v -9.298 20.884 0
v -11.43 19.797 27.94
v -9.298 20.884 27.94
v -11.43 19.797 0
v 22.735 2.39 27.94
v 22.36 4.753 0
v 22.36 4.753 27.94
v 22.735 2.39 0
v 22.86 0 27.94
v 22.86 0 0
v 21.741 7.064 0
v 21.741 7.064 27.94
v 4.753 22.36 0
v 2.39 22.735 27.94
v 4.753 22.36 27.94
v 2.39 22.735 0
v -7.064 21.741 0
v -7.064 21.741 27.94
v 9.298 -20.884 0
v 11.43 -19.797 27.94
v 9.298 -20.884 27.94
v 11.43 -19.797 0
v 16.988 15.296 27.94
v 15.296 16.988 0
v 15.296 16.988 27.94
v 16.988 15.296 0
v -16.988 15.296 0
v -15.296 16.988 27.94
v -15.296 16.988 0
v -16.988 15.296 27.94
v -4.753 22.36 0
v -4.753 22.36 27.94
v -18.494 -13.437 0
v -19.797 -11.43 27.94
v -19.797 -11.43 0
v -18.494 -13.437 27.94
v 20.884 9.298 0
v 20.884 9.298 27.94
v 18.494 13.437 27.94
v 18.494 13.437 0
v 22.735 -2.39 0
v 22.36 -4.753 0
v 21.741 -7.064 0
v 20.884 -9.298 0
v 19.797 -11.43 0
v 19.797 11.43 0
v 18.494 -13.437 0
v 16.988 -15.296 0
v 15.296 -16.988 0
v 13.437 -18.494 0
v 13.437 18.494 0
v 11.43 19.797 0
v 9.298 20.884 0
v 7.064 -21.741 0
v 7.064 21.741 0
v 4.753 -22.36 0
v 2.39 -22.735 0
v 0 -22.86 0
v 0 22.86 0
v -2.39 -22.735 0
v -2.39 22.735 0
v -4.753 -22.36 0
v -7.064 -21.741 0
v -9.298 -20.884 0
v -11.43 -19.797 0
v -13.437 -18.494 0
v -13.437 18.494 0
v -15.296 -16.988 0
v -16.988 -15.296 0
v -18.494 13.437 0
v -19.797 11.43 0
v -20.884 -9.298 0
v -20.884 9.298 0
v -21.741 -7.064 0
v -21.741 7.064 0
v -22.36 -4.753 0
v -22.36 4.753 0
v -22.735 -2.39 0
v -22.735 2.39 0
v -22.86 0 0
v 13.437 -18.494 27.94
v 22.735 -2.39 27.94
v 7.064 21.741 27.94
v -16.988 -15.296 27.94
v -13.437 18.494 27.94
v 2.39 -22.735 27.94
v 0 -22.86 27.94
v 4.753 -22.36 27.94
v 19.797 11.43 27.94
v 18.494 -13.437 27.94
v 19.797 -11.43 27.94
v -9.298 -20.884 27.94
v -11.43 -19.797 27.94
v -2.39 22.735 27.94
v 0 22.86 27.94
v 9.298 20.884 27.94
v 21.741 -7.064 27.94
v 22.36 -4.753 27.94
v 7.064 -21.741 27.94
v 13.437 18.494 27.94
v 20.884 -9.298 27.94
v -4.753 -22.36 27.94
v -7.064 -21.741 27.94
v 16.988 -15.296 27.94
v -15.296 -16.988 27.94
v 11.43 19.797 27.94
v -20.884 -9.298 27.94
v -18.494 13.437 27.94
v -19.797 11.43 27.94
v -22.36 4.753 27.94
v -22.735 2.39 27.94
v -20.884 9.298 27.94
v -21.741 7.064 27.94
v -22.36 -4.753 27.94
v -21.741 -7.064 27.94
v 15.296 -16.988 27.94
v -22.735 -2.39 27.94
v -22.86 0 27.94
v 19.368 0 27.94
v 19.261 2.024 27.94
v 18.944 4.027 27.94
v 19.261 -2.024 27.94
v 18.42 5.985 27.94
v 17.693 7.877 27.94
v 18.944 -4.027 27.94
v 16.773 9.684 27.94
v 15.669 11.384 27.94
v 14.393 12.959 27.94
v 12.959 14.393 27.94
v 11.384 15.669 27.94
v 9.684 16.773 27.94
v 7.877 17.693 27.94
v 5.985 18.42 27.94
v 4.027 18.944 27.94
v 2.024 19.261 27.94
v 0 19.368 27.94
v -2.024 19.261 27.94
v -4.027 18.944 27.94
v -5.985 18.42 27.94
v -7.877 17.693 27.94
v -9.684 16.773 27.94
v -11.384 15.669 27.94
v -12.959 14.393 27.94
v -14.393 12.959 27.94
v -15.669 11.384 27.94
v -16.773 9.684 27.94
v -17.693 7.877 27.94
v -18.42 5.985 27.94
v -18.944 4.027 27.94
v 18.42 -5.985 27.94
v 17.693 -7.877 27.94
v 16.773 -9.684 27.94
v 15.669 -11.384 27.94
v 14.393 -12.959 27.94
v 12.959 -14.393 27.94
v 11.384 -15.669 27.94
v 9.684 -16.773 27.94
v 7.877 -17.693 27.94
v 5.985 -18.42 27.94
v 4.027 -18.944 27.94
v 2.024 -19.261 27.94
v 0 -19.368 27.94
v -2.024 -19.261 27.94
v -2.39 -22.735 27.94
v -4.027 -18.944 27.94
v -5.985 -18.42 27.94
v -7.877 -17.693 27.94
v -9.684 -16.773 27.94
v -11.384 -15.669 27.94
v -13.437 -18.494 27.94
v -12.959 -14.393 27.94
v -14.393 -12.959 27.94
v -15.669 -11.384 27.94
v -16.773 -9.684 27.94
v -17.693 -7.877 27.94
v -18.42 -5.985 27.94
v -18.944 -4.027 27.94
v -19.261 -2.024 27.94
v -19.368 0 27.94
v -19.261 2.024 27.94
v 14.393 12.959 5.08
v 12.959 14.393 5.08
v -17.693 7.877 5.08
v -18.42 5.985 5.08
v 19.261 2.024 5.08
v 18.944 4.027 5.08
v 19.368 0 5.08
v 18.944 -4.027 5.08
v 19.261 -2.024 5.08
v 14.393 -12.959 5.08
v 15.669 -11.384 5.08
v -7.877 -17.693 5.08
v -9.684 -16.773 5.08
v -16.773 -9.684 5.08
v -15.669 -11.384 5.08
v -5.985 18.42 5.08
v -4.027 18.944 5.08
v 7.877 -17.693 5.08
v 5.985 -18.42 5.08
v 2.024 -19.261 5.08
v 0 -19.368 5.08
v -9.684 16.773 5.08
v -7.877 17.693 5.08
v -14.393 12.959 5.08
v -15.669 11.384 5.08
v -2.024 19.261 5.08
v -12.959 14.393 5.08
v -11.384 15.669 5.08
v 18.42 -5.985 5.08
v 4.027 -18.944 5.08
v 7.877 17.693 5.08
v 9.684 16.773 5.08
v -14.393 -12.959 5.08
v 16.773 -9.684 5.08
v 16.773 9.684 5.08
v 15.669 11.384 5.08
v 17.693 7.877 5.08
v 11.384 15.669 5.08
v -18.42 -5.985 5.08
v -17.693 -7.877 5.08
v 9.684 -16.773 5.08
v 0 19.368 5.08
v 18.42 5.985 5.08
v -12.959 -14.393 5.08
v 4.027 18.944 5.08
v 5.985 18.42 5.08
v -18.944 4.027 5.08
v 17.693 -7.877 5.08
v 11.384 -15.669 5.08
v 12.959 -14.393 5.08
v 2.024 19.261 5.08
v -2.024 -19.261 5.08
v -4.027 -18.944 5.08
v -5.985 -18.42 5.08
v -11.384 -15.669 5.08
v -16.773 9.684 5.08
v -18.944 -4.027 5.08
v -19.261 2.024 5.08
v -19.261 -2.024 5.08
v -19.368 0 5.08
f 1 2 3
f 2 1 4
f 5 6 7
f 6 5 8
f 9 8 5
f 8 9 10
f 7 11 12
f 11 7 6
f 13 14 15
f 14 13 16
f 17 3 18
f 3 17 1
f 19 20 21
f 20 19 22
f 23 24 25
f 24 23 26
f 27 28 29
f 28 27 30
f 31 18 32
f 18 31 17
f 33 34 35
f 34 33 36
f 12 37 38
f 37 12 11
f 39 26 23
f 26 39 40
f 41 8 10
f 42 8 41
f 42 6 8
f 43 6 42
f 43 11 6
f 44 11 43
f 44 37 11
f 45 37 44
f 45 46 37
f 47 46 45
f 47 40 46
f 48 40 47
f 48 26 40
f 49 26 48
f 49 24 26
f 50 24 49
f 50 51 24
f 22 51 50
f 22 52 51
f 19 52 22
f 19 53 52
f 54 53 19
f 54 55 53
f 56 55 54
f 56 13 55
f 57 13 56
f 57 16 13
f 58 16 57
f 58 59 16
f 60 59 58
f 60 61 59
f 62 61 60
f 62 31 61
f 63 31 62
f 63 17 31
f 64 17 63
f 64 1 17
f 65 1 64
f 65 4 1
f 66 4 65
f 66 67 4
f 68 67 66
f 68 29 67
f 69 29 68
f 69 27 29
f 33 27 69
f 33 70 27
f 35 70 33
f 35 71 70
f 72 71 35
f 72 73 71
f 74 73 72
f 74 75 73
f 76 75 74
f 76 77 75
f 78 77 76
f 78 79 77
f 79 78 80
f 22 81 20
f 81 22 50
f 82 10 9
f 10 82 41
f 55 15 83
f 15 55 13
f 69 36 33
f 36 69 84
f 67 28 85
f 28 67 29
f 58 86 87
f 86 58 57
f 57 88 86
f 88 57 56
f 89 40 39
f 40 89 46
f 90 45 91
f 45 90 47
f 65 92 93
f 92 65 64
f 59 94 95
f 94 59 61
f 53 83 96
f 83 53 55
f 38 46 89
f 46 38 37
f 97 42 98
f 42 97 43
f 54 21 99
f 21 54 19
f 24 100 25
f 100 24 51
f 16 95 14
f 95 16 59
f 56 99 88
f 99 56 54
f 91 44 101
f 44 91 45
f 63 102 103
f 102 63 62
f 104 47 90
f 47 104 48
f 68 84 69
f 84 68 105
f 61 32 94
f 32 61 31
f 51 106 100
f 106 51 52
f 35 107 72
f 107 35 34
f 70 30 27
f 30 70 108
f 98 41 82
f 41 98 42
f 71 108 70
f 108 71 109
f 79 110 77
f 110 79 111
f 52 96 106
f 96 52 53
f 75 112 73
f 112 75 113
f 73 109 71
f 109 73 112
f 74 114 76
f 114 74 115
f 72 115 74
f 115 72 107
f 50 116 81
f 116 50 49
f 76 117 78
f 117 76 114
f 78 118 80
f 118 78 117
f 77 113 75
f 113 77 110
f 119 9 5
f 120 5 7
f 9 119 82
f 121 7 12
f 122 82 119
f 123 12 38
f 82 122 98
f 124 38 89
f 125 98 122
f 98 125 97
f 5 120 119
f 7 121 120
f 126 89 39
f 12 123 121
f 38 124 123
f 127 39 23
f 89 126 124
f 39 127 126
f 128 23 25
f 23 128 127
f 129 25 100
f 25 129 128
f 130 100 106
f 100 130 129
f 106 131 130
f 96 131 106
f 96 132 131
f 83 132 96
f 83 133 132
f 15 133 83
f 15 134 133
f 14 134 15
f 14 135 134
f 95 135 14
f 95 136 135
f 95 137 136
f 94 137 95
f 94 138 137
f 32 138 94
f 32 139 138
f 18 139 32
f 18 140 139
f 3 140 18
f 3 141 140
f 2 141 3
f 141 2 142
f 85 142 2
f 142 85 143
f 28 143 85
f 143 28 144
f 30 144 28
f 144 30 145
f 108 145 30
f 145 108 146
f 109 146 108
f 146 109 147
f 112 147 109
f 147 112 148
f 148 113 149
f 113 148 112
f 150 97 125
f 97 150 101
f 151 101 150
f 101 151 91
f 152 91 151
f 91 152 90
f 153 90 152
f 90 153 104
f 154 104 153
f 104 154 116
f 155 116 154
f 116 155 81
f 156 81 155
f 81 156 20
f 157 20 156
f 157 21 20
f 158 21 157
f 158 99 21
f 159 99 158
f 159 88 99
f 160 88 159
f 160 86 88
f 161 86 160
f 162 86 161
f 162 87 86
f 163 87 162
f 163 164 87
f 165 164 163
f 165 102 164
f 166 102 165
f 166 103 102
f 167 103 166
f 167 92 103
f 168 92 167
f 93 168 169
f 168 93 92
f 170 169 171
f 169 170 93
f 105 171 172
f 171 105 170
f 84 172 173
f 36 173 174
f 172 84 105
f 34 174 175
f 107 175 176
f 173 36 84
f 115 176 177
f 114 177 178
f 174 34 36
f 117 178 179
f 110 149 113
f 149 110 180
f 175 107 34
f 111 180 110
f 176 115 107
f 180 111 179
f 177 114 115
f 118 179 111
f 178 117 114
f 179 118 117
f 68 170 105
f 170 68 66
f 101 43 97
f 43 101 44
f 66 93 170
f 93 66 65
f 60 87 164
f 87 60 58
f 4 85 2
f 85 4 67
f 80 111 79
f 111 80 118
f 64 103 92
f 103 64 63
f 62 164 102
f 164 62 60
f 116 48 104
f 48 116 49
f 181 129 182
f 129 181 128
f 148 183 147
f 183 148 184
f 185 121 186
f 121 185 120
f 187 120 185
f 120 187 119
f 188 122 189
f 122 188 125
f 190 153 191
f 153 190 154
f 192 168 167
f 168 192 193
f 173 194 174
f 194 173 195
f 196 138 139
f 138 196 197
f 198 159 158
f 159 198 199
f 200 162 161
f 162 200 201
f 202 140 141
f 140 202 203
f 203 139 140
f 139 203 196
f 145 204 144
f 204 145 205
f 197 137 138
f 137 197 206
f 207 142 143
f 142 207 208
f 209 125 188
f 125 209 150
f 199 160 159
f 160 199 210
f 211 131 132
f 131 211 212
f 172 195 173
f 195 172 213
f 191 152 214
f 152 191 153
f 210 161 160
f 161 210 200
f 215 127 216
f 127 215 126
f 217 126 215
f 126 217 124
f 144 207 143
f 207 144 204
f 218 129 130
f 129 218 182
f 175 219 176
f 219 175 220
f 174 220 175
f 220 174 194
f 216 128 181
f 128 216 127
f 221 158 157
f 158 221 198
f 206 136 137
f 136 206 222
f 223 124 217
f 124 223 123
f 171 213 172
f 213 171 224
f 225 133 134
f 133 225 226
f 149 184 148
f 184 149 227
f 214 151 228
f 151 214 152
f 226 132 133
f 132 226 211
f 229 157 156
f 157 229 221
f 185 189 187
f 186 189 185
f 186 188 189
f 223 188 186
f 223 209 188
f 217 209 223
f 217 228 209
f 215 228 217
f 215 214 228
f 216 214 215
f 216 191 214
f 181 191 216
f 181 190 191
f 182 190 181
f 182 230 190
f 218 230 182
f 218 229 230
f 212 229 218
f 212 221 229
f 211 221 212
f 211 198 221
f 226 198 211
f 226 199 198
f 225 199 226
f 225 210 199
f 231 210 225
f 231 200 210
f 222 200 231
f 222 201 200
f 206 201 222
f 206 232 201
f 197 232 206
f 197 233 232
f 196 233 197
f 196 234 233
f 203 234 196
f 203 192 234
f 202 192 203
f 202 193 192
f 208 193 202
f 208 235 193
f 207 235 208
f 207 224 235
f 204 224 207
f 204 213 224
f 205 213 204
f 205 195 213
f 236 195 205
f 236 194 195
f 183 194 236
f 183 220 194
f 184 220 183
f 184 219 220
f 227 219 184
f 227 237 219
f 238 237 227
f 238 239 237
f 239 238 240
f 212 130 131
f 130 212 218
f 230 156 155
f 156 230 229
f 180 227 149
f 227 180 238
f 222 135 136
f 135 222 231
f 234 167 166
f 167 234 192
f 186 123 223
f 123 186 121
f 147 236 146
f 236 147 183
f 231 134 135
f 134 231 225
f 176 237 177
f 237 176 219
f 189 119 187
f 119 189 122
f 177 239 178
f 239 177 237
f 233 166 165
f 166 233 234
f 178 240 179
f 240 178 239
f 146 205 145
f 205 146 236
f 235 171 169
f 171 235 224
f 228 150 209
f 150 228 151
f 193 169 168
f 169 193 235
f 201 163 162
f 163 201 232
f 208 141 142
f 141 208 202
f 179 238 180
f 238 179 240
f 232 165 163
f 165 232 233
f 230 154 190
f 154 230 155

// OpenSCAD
/* OpenSCAD file for a cap for the microscope photo tube
 * Tom Trebisky  3-21-2026
 */
mmpi = 25.4;

inner_diam = 1.525 * mmpi;
outer_diam = 1.8 * mmpi;

in_height = 0.9 * mmpi;
lid = 0.2 * mmpi;
out_height = in_height + lid;

r_in = inner_diam / 2.0;
r_out = outer_diam / 2.0;

// Note - OpenSCAD will yield undersized holes since a cylinder
// (or circle) will be generated as a polygon with vertices on
// the specified radius.  The default seems to be a 12 sided polygon
// but the $fn parameter will override that.

// We can set the circle resolution in a global way like this,
// or individualy below.  This is all about OpenSCAD scope.

$fn = 60;

// Note - use %cylinder to make the outer cylinder transparent.

difference () {
    cylinder( r = r_out, h = out_height );
    translate([0,0,lid]) cylinder( r = r_in, h = out_height );
}

// THE END
